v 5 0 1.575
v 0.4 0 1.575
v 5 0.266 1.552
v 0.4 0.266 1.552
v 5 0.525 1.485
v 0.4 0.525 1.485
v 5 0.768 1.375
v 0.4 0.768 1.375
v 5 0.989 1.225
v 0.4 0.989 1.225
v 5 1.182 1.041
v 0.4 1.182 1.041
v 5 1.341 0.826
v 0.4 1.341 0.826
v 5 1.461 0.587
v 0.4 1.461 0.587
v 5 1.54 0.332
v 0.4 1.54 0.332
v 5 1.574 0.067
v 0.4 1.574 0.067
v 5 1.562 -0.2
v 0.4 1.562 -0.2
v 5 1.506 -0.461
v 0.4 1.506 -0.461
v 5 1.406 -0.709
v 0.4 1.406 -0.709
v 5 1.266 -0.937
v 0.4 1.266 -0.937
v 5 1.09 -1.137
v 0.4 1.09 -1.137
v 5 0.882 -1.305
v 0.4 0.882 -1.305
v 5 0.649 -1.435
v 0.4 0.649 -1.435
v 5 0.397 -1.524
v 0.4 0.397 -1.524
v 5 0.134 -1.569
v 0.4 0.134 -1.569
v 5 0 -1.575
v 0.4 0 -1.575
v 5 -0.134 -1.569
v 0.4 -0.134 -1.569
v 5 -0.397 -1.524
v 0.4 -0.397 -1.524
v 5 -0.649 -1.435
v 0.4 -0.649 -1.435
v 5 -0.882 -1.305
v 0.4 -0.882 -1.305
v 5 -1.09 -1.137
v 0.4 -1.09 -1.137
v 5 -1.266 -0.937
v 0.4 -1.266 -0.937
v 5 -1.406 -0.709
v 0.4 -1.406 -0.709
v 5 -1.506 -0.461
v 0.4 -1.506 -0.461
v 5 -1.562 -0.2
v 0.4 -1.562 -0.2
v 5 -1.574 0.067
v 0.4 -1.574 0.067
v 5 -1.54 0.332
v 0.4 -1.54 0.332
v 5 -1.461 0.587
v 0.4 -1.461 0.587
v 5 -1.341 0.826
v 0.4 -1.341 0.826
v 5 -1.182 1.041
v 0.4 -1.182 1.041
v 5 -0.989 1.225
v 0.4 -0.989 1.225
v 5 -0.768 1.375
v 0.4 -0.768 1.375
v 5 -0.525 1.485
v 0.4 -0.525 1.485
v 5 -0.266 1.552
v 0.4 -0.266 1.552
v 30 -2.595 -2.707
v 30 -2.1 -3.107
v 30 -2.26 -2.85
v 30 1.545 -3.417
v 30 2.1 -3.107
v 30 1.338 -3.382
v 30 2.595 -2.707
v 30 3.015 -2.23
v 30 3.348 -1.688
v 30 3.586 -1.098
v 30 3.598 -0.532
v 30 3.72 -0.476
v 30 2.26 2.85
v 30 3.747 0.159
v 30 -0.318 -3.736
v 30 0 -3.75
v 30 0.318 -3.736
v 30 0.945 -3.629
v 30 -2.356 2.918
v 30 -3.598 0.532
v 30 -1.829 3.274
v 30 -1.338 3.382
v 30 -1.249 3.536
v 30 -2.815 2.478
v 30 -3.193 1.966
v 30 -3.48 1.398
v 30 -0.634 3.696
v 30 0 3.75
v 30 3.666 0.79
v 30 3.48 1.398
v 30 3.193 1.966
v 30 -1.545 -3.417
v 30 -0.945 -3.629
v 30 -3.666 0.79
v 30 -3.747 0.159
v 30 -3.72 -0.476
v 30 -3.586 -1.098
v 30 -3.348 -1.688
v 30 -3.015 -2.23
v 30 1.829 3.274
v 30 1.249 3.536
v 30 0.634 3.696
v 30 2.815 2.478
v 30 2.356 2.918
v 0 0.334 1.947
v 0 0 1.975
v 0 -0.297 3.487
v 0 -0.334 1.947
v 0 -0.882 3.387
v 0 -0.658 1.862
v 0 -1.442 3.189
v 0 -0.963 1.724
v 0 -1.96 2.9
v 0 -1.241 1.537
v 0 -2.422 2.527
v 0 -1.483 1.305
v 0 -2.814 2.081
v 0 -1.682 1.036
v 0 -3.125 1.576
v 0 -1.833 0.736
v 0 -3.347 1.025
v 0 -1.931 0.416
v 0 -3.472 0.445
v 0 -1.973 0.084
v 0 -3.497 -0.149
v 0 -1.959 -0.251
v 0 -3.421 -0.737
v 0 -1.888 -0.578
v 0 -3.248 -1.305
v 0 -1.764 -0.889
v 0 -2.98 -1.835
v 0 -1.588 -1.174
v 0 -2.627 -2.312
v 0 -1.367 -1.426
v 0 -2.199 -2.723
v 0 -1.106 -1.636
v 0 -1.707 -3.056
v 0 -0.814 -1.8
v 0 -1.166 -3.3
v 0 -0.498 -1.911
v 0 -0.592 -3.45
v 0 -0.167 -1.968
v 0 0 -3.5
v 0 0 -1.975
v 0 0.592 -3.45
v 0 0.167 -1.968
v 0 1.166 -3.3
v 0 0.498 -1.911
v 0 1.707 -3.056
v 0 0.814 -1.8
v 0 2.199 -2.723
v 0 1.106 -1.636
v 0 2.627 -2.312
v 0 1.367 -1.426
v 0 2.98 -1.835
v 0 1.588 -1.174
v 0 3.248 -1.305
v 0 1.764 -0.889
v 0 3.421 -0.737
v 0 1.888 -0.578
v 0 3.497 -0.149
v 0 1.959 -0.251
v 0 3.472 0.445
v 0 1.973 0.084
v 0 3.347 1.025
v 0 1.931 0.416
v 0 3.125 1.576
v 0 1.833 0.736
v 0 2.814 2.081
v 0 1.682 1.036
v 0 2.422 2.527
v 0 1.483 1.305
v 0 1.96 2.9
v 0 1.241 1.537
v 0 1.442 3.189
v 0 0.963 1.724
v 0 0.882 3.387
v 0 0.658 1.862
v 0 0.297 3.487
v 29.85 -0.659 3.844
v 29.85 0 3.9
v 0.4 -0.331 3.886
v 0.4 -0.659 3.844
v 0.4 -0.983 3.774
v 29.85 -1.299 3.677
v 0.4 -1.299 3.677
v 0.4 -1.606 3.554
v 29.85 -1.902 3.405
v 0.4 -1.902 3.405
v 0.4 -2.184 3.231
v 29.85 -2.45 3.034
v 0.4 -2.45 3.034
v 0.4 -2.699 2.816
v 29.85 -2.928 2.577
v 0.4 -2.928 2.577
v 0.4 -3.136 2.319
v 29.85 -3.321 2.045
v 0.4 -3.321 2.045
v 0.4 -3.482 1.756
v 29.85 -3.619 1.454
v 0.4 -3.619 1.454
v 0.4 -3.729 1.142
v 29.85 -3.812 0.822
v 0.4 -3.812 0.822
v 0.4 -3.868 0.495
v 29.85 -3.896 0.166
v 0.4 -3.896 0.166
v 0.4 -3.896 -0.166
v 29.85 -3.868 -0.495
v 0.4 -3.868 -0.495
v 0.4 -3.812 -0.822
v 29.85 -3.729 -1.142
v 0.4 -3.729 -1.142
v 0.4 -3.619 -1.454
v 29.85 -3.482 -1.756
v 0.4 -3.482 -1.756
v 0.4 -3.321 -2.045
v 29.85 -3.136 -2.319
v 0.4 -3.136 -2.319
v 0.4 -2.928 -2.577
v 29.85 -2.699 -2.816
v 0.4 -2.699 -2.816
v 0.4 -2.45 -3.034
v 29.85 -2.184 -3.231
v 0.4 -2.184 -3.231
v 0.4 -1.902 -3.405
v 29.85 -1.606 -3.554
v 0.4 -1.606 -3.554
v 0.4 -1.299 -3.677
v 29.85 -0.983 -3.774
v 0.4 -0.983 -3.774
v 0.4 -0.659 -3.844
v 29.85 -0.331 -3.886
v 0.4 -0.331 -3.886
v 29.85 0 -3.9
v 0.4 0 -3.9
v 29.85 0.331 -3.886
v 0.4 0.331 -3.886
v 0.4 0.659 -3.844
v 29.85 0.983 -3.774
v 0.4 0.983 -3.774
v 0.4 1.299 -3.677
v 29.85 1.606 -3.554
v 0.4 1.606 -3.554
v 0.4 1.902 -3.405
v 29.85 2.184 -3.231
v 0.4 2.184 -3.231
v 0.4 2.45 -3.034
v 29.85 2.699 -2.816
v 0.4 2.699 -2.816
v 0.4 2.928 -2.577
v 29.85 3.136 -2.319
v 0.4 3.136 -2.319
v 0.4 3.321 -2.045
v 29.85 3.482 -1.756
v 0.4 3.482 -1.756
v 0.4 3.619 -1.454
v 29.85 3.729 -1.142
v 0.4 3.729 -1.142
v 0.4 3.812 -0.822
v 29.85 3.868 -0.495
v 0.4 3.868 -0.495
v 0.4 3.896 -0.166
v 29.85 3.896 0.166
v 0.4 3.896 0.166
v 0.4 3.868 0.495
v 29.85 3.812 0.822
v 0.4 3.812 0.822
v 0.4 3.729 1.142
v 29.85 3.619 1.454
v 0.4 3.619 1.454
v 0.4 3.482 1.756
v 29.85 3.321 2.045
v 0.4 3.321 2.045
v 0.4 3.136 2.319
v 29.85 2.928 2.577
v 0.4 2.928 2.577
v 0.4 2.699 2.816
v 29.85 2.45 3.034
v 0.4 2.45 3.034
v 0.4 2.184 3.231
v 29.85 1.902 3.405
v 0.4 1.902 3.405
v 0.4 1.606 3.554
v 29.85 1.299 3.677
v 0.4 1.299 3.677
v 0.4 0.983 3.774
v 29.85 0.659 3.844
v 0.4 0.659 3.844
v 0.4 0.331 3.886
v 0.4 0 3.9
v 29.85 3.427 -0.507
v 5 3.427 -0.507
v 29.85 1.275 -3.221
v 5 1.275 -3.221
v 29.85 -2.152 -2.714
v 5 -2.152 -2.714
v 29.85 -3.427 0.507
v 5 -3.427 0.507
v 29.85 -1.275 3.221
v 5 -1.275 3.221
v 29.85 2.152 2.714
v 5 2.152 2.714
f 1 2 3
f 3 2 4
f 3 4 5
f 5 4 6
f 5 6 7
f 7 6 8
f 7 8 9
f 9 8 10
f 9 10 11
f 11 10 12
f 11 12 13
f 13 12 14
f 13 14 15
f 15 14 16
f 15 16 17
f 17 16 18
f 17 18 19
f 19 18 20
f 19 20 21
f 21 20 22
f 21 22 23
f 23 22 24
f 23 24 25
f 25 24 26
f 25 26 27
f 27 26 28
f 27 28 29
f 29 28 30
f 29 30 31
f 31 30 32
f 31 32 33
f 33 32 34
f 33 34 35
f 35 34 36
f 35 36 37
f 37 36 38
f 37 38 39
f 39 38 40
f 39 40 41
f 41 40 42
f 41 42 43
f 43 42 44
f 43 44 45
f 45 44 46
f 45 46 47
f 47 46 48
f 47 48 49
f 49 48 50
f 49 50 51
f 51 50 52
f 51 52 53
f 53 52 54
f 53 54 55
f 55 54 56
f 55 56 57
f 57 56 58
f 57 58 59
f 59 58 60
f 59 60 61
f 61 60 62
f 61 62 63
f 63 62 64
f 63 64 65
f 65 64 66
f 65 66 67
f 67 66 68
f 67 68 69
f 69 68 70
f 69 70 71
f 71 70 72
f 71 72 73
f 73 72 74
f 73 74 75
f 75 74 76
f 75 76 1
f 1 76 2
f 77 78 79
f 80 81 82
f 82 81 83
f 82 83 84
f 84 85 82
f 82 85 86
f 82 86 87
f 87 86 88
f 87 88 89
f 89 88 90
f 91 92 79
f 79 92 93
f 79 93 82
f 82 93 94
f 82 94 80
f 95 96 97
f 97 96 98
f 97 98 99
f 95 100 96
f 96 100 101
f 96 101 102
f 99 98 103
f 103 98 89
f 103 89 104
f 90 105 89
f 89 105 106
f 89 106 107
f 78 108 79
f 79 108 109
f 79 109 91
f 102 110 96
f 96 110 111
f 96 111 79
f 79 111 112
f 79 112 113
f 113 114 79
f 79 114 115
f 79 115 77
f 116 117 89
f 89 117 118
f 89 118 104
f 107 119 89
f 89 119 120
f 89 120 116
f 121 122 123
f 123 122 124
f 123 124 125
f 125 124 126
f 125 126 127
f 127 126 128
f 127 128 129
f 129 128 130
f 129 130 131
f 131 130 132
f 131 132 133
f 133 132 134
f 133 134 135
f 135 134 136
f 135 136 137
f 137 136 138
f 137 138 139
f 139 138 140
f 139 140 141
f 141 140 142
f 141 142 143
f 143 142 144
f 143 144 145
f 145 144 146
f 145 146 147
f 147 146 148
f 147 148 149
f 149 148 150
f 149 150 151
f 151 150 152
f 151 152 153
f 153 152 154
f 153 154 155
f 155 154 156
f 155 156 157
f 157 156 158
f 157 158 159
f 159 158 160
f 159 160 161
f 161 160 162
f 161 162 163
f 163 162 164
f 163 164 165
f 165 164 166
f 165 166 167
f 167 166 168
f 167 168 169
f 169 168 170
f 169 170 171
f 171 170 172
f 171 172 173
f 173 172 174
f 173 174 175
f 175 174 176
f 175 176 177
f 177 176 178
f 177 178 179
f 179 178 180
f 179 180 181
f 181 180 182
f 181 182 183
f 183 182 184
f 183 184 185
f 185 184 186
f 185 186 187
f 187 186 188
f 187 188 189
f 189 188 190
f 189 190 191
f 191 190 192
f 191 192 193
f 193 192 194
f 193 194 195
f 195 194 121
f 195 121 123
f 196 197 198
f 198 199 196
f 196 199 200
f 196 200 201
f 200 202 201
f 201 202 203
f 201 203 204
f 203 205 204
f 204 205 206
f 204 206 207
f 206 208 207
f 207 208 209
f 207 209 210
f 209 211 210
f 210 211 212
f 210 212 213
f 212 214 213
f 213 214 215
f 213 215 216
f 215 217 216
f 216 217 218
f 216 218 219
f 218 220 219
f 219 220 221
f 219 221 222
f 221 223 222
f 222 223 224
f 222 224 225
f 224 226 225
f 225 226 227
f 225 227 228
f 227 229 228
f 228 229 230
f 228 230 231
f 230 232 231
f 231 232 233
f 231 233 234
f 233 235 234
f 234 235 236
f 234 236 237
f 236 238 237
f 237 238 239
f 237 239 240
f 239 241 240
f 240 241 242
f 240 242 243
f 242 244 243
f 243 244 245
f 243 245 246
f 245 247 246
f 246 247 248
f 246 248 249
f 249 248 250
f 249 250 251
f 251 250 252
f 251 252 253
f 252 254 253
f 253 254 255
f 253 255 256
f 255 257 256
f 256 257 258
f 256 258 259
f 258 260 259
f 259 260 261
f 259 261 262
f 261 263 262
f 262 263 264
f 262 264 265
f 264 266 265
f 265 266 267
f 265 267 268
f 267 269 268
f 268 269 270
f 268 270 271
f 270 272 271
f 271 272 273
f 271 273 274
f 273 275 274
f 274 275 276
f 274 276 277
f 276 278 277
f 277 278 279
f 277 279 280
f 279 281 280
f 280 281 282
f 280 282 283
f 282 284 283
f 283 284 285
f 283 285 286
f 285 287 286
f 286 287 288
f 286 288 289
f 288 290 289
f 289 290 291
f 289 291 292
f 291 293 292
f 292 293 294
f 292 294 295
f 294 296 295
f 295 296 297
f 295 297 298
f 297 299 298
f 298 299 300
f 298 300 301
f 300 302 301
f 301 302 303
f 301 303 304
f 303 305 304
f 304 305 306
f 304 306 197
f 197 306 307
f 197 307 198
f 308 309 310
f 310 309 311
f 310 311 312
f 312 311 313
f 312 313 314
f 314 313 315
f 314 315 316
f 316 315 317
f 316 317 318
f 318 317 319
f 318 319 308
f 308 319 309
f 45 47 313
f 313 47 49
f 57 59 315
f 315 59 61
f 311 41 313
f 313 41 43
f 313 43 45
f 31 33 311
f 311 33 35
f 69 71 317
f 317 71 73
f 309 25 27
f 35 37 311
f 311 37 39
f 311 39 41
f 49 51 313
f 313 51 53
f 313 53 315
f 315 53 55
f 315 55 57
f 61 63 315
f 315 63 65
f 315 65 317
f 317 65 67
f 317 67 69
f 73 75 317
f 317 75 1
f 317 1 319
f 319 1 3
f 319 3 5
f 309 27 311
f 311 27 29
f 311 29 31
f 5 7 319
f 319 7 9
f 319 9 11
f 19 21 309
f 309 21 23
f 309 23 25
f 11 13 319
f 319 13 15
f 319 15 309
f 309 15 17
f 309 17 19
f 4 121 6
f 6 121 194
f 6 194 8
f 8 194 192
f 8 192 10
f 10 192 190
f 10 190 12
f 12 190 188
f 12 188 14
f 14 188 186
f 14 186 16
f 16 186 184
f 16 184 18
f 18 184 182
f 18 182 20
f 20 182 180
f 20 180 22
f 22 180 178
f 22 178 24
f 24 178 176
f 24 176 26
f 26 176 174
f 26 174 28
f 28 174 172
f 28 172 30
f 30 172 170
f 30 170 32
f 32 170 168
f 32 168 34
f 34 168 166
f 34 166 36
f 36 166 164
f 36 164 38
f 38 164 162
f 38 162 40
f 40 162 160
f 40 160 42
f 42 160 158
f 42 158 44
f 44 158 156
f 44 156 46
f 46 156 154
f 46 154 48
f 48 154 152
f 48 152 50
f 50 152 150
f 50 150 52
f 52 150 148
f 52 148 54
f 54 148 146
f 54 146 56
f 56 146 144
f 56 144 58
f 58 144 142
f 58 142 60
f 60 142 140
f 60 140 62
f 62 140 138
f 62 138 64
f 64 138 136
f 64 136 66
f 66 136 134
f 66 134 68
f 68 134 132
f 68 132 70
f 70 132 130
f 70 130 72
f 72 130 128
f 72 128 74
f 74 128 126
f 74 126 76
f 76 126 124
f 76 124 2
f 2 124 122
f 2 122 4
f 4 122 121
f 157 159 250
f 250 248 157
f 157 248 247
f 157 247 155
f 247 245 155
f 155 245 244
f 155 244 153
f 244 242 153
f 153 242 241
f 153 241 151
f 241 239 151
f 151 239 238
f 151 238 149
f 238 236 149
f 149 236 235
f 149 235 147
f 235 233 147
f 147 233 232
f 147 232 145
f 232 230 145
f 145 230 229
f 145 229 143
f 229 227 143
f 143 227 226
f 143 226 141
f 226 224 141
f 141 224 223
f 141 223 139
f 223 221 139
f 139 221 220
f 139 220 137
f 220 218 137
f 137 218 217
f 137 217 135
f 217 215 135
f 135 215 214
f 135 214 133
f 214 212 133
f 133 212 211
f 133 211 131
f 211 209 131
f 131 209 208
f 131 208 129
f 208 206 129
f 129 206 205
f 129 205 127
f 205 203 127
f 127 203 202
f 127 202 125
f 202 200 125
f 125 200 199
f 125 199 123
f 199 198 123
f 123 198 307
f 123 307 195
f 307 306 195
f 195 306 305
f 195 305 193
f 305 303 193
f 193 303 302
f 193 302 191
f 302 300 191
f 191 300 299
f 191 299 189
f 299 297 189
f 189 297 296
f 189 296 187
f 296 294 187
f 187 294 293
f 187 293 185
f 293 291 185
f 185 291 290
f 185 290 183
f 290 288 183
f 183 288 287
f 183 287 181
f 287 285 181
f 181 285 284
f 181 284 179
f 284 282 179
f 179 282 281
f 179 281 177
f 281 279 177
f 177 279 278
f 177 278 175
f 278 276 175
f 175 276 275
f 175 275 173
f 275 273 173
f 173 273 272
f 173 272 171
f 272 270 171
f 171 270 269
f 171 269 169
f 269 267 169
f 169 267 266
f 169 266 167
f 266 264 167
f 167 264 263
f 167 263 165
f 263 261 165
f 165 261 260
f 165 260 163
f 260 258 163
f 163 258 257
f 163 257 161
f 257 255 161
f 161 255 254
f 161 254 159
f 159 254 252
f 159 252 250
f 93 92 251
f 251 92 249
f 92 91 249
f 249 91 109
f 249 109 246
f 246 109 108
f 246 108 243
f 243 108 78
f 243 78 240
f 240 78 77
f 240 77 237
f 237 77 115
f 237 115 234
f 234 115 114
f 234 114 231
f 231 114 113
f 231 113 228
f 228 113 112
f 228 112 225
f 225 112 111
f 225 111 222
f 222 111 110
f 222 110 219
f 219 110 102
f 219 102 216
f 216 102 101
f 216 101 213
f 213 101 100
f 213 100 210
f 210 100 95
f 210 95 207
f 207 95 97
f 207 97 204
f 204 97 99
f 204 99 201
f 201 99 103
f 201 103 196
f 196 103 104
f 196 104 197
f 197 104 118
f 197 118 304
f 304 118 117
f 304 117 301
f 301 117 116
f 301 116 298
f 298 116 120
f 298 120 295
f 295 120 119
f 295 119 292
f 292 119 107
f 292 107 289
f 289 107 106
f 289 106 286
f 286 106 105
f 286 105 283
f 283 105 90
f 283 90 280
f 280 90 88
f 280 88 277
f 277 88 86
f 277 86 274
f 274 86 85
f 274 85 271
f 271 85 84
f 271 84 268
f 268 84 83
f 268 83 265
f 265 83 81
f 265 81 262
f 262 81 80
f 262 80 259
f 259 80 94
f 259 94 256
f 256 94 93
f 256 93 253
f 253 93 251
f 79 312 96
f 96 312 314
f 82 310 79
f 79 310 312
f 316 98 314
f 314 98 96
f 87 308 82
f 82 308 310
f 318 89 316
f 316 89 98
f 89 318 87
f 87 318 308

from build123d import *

# Parameters (mm, degrees)
SKETCH1_R           = 3.9
SKETCH1_R_2         = 1.575
BOSS_EXTRUDE1_DEPTH = 30
CUT_EXTRUDE1_DEPTH  = 25
CHAMFER1_SIZE       = 0.4
CHAMFER2_SIZE       = 0.15


with BuildPart() as part:
    # Sketch1 → Boss-Extrude1 (new body)
    with BuildSketch(Plane(origin=(0, 0, 0), x_dir=(0, 0, -1), z_dir=(1, 0, 0))):
        Circle(SKETCH1_R)
        Circle(SKETCH1_R_2, mode=Mode.SUBTRACT)
    extrude(amount=BOSS_EXTRUDE1_DEPTH)

    # Sketch2 → Cut-Extrude1 (cut)
    with BuildSketch(Plane(origin=(30, 0, 0), x_dir=(0, 0, -1), z_dir=(1, 0, 0))):
        Polygon((0.506657863, 3.426849546), (-2.71440983, 2.152203353), (-3.221067693, -1.274646193), (-0.506657863, -3.426849546), (2.71440983, -2.152203353), (3.221067693, 1.274646193), align=None)
    extrude(amount=-CUT_EXTRUDE1_DEPTH, mode=Mode.SUBTRACT)

    # Chamfer1
    chamfer1_edges = [part.edges().sort_by_distance(p)[0] for p in [
        (0, 0, 3.9),
        (0, 0, 1.575),
    ]]
    chamfer(chamfer1_edges, length=CHAMFER1_SIZE)

    # Chamfer2
    chamfer2_edges = [part.edges().sort_by_distance(p)[0] for p in [
        (30, 2.350747869, -1.863862778),
        (30, 2.78952645, 1.103875984),
        (30, 0.43877858, 2.967738762),
        (30, -2.350747869, 1.863862778),
        (30, -2.78952645, -1.103875984),
        (30, -0.43877858, -2.967738762),
        (30, 0, 3.9),
    ]]
    chamfer(chamfer2_edges, length=CHAMFER2_SIZE)


solid = part.part
